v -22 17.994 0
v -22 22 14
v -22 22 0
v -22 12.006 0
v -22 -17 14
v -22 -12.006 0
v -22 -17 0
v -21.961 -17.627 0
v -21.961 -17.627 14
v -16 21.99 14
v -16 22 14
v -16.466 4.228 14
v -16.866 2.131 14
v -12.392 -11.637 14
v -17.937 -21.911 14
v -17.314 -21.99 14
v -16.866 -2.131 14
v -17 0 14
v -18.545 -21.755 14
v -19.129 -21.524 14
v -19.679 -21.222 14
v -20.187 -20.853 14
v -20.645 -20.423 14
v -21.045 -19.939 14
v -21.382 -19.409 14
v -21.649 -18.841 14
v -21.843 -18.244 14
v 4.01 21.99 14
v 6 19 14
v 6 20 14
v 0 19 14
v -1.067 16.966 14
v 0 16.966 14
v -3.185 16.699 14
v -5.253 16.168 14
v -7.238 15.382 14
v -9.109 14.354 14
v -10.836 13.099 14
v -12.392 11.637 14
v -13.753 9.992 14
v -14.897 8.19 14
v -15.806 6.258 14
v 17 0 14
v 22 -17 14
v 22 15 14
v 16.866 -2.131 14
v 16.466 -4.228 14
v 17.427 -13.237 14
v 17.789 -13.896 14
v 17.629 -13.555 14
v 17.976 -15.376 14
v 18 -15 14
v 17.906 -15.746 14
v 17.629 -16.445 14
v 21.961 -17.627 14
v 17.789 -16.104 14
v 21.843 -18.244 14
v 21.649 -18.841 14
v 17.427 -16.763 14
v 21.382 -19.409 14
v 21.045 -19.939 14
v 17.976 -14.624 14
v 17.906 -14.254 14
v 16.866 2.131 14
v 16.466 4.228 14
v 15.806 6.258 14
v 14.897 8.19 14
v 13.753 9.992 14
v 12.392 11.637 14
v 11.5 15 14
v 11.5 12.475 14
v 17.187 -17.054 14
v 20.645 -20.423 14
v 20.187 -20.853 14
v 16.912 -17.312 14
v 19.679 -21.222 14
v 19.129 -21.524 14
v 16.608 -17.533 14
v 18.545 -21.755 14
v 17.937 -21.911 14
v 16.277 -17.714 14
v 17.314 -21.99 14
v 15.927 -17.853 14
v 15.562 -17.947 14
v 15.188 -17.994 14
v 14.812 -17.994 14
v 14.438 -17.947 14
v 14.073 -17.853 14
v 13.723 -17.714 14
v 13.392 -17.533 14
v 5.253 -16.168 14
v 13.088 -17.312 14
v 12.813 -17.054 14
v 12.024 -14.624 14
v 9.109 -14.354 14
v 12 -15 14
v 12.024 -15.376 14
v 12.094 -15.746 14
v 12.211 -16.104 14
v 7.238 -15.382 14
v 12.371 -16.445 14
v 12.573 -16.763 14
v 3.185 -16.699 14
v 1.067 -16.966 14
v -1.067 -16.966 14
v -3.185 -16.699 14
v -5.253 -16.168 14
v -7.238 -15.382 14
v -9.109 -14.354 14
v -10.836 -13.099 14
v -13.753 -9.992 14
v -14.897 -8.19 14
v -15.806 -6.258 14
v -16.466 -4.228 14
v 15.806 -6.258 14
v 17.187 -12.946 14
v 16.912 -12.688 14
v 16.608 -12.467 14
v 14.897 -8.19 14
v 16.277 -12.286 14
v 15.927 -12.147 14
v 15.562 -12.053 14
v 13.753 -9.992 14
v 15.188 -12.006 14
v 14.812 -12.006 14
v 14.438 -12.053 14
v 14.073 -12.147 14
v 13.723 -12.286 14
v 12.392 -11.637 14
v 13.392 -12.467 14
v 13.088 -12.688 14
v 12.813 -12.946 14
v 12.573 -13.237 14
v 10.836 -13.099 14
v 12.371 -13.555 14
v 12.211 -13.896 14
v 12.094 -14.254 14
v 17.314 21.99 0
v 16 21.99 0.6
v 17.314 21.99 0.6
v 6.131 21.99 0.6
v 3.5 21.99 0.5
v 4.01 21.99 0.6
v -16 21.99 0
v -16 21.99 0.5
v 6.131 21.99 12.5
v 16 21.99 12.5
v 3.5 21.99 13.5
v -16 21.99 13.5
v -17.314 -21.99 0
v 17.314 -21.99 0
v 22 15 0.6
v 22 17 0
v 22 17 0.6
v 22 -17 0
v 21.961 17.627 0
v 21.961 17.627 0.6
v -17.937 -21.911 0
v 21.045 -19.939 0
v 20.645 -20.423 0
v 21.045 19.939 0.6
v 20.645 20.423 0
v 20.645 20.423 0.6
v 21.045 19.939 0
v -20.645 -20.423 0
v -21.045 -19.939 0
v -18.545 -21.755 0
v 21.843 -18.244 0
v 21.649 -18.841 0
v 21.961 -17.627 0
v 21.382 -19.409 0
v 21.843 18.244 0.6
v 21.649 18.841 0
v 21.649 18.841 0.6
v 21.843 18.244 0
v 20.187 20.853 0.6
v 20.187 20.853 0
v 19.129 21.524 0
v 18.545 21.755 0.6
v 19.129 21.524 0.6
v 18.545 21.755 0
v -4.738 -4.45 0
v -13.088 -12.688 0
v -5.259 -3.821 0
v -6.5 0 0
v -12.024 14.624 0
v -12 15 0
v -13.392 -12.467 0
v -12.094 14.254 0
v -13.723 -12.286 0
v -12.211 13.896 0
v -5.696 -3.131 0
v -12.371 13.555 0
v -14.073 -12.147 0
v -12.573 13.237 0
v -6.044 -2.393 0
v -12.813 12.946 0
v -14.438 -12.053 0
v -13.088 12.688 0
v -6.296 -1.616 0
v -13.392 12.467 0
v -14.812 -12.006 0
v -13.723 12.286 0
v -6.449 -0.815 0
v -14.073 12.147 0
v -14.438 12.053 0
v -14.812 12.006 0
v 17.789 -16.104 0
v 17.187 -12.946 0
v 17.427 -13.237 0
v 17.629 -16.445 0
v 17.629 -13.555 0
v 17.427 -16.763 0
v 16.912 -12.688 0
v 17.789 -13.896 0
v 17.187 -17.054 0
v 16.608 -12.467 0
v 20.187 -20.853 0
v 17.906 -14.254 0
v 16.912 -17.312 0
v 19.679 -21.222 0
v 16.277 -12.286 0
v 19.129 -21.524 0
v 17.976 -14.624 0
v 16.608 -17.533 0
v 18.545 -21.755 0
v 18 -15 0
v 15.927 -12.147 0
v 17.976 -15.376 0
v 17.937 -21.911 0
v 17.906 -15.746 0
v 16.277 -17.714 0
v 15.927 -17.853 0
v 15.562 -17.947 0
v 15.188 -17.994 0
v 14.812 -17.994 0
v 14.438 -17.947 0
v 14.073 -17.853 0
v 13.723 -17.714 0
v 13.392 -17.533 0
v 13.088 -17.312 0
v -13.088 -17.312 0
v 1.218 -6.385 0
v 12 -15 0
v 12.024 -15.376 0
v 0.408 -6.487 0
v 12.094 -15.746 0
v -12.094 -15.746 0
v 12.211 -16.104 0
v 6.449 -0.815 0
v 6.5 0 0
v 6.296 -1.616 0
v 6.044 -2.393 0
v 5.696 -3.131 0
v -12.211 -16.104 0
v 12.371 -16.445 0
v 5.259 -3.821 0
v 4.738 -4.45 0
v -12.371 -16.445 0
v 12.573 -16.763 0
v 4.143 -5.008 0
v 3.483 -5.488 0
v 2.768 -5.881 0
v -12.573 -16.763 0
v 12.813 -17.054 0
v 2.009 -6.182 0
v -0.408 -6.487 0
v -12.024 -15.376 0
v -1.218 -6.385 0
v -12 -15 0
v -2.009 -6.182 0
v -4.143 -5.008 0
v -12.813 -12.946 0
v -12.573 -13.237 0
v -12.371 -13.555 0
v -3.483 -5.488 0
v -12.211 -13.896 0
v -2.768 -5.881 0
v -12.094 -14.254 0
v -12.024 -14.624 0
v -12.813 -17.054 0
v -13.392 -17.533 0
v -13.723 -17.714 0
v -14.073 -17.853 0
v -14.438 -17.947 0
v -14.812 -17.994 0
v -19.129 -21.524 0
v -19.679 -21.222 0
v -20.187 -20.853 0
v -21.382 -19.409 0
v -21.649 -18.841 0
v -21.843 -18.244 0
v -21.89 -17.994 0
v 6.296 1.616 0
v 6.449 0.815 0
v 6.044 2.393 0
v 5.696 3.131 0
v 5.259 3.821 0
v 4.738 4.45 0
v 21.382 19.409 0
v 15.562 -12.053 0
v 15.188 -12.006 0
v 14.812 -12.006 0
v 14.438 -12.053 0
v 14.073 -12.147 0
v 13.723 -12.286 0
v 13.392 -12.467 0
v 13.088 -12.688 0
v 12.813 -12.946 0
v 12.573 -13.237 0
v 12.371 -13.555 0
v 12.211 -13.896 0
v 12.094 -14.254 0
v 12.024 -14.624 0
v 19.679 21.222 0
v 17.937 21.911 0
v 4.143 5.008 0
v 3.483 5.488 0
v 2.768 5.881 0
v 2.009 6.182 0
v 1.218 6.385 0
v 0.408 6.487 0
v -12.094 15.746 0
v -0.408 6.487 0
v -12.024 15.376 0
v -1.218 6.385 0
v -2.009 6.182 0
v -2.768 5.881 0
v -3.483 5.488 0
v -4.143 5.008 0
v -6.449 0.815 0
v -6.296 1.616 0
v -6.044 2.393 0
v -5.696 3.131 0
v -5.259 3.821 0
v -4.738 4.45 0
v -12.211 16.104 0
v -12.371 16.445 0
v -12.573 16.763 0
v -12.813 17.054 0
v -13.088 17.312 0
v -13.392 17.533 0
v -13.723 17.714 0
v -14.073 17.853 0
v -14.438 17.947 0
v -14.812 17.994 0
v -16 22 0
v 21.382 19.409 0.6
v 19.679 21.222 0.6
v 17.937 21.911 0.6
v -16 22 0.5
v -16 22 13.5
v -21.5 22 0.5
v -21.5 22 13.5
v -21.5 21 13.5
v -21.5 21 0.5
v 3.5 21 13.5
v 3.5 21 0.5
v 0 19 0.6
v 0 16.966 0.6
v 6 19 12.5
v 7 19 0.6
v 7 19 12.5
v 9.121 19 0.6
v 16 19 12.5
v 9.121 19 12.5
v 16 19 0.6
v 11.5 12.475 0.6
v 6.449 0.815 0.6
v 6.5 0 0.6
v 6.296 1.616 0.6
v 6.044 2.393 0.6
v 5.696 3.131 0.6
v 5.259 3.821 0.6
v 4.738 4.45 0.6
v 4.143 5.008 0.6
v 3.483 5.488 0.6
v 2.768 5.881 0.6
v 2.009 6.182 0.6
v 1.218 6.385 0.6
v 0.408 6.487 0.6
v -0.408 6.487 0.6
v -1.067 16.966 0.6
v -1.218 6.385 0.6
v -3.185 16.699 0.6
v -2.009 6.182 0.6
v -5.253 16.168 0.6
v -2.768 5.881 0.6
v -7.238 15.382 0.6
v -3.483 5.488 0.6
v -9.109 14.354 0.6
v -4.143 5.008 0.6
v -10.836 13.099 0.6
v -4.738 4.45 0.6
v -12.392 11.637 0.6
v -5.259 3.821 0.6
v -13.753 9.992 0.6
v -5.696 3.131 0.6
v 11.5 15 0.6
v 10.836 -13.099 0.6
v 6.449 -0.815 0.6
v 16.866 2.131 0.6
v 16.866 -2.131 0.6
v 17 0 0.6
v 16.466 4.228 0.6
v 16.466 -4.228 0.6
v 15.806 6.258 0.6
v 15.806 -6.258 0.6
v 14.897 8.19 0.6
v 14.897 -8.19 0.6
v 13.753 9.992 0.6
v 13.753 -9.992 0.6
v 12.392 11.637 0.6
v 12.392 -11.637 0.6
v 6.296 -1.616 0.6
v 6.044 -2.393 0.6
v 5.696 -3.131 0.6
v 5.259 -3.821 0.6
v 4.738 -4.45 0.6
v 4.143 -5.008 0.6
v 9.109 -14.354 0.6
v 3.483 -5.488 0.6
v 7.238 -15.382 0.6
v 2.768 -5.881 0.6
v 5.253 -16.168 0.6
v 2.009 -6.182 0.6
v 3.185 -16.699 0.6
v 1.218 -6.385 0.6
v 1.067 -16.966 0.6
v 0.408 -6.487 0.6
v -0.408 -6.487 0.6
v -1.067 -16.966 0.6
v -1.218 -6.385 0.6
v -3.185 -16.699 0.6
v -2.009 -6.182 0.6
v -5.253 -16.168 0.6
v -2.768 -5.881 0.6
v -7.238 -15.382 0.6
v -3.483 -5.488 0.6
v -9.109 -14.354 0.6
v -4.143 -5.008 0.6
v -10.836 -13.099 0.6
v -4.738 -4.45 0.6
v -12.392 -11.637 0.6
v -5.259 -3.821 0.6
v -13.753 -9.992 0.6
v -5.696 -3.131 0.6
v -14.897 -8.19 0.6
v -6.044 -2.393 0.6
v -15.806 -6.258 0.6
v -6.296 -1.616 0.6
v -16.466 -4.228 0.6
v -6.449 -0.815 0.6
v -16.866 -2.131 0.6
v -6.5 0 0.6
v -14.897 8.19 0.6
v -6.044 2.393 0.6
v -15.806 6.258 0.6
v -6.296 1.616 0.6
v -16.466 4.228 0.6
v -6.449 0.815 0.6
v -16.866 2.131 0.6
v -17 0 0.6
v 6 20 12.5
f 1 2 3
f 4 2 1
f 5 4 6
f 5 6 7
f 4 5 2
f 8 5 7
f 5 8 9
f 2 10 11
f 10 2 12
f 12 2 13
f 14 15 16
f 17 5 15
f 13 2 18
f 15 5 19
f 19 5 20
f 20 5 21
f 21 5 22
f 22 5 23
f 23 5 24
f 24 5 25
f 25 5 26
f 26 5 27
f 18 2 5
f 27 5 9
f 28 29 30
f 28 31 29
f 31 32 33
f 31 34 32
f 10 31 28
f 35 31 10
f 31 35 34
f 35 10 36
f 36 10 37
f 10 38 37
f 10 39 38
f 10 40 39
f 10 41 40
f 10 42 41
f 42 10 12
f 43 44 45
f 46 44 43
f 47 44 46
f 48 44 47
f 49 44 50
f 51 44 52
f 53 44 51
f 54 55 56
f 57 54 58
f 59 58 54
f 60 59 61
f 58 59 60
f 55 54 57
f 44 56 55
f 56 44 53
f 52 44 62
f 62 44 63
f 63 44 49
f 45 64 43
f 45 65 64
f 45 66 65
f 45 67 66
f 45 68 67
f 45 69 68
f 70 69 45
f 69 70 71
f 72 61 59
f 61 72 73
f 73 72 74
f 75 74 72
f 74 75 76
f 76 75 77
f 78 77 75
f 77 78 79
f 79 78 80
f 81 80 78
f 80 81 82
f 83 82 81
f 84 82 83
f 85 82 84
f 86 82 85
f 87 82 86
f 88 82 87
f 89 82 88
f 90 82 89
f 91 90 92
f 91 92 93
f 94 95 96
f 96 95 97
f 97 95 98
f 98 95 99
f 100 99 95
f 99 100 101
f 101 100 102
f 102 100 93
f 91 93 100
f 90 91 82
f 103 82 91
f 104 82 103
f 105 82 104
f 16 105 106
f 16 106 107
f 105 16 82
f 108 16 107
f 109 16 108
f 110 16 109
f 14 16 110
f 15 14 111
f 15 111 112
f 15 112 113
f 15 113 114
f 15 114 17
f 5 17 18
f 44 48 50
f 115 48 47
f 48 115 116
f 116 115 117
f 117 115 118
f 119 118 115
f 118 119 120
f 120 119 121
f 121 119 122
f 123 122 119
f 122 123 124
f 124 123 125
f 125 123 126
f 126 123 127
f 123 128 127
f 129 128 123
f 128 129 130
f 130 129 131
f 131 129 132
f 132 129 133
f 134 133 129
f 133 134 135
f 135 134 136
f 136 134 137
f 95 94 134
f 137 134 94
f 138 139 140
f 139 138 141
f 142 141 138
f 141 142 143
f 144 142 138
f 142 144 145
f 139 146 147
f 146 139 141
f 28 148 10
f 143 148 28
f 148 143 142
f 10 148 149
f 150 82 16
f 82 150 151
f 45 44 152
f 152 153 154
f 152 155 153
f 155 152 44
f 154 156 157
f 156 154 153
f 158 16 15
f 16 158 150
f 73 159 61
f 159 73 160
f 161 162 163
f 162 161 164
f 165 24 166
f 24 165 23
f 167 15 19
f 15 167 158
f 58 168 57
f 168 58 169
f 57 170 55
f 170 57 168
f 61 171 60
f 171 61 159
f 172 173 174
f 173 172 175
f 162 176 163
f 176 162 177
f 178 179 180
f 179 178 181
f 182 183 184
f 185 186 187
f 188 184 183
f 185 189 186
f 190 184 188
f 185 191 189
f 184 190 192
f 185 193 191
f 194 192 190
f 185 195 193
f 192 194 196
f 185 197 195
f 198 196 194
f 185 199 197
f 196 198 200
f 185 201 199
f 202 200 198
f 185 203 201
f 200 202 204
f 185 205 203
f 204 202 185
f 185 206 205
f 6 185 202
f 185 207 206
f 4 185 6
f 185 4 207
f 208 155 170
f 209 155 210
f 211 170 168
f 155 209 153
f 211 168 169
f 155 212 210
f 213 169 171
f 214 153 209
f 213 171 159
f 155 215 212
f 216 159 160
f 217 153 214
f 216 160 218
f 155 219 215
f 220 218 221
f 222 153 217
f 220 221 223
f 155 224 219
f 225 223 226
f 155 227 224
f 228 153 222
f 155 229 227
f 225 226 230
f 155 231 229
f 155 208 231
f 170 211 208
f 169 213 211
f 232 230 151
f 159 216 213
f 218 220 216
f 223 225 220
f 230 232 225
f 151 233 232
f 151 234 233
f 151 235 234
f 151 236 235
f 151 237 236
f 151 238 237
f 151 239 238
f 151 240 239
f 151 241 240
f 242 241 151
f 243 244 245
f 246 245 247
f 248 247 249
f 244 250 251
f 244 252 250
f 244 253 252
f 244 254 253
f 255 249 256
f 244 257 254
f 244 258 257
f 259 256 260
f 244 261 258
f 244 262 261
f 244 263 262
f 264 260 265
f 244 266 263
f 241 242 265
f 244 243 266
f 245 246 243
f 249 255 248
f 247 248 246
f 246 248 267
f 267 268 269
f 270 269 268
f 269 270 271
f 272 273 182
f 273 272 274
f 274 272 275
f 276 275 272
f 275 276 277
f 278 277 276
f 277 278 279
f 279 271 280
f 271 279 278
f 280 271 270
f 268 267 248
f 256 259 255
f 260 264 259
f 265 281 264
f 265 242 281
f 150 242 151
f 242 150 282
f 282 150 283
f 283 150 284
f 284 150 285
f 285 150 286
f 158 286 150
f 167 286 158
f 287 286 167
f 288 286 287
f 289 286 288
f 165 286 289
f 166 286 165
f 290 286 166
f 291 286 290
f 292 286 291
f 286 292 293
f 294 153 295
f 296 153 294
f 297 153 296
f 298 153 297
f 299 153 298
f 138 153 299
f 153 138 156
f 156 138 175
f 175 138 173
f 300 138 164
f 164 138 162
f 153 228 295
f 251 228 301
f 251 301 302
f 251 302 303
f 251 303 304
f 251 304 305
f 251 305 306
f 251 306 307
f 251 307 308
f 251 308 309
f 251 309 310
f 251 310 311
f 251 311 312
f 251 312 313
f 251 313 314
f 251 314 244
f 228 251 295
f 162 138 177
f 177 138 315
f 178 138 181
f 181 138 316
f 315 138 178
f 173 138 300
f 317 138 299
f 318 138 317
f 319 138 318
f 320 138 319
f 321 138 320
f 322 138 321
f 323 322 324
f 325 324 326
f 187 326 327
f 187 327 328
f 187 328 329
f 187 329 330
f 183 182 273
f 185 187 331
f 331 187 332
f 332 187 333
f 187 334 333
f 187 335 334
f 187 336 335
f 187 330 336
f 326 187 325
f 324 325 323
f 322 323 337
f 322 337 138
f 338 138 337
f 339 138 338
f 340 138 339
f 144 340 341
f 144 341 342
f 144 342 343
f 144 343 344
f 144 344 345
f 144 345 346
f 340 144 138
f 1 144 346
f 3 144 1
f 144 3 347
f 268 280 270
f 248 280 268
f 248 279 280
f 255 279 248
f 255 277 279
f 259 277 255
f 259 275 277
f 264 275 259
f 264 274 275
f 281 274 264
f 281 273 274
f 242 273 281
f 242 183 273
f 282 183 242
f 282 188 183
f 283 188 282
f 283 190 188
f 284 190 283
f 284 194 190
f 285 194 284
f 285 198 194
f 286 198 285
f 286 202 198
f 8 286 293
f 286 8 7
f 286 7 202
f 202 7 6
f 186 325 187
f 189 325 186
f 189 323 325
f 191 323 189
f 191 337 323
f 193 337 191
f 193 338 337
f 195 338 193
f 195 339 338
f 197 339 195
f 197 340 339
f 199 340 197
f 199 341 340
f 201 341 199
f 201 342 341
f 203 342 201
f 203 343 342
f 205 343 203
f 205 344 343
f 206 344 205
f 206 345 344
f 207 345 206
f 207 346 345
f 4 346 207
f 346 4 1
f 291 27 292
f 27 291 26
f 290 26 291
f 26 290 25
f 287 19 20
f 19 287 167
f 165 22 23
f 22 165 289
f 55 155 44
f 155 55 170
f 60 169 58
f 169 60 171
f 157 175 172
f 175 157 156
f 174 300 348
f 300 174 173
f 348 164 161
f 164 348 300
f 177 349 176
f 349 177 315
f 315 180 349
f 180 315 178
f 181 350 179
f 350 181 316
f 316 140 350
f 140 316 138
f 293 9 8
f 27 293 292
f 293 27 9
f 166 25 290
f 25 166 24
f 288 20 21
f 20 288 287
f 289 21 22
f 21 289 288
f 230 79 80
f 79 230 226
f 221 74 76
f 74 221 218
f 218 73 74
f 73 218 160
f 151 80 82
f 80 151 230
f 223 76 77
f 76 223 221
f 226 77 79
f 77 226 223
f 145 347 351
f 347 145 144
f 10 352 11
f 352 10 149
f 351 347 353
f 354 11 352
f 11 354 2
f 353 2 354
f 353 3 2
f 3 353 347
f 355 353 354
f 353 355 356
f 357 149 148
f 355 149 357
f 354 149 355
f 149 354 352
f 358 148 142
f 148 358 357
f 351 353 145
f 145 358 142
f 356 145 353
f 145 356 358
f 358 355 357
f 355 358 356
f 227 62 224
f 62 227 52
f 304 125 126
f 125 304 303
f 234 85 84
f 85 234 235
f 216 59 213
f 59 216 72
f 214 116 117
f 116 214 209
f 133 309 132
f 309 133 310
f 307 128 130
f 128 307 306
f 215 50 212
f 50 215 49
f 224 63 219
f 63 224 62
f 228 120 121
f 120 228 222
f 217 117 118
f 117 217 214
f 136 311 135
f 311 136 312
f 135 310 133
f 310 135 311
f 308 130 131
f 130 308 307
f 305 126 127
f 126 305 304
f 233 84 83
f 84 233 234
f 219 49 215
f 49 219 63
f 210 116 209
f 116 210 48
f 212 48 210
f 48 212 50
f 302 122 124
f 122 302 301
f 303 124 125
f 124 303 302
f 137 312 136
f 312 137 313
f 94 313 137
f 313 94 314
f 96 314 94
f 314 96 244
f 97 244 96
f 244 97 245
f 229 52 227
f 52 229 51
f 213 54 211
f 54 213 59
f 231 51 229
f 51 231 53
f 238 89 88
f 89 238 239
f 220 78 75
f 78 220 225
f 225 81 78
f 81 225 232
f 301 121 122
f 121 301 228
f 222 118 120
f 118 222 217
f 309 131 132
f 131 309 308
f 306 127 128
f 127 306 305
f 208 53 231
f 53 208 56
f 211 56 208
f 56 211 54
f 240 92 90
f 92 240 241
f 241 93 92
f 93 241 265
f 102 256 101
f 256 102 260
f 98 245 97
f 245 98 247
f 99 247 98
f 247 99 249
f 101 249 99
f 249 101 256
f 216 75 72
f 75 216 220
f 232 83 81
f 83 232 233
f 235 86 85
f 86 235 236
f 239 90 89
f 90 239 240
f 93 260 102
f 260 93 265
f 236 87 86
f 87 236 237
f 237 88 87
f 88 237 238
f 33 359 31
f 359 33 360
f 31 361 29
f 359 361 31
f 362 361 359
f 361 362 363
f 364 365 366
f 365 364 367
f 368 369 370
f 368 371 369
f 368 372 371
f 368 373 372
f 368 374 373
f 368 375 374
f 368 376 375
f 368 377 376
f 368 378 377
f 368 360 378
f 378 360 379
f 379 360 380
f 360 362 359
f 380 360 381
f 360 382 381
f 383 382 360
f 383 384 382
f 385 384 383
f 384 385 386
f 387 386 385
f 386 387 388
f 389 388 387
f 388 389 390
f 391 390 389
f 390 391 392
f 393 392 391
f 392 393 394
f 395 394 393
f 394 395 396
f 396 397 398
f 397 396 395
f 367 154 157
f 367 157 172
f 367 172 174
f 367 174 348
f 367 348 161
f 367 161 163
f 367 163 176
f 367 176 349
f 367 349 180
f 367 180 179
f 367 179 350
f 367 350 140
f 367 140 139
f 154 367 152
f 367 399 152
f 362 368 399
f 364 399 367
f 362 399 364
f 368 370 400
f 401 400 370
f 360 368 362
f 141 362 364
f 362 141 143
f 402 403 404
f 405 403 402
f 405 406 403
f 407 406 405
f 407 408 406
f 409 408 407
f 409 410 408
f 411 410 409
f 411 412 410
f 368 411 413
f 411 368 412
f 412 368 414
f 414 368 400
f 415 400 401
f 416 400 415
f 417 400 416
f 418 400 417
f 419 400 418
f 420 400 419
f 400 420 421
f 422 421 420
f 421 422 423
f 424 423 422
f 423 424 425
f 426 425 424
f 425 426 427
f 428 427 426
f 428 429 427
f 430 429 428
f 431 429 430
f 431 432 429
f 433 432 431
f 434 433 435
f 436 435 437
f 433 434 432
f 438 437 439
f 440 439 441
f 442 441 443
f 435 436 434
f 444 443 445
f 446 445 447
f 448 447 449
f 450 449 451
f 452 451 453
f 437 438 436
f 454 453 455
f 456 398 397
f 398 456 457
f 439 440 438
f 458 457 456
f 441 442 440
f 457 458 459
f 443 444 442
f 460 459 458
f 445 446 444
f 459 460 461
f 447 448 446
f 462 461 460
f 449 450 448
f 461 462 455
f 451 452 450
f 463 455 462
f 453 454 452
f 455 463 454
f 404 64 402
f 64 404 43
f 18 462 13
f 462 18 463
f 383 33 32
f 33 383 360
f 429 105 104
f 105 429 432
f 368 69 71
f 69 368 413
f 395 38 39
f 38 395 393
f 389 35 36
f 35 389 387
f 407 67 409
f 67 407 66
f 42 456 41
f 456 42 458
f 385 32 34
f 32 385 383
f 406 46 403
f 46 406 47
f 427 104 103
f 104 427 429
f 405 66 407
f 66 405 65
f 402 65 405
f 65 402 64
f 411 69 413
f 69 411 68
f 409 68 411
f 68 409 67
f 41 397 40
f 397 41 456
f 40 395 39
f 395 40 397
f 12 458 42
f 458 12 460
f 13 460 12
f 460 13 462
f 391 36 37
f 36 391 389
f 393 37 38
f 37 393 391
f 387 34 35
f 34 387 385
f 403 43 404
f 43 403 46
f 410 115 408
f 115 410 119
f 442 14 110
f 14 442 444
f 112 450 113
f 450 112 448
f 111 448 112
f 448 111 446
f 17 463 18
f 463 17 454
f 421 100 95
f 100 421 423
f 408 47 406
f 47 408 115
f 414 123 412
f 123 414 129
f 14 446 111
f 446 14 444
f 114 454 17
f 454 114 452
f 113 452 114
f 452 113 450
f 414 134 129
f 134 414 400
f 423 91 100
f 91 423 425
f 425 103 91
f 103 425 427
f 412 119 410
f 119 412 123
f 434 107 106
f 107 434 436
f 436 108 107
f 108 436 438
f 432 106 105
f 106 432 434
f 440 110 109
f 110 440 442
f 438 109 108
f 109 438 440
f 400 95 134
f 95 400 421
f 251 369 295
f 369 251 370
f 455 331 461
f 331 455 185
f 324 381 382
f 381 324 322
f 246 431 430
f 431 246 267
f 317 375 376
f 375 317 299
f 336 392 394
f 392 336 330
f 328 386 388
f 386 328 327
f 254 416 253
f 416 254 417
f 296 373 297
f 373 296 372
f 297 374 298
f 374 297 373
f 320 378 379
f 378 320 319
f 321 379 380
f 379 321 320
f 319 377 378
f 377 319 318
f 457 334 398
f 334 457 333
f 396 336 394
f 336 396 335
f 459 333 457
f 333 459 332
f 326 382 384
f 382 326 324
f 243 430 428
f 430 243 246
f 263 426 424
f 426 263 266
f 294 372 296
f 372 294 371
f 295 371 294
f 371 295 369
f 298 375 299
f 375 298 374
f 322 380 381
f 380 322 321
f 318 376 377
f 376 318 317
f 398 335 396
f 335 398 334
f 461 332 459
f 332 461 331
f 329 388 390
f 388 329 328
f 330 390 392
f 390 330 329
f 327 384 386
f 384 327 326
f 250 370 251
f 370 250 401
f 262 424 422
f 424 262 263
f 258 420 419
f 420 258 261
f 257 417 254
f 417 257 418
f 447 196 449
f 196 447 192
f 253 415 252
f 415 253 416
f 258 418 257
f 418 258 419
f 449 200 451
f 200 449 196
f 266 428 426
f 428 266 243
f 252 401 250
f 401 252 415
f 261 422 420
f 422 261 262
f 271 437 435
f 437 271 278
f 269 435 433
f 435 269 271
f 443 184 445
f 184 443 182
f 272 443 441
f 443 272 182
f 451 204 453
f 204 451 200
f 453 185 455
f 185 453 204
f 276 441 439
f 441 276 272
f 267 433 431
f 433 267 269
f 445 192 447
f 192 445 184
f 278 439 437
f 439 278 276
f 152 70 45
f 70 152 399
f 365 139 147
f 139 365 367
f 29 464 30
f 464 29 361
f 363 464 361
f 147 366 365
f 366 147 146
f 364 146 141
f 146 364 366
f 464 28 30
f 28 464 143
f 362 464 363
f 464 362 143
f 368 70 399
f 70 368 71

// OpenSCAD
$fn = 50;


difference() {
	union() {
		hull() {
			translate(v = [-17.0000000000, 17.0000000000, 0]) {
				cylinder(h = 14, r = 5);
			}
			translate(v = [17.0000000000, 17.0000000000, 0]) {
				cylinder(h = 14, r = 5);
			}
			translate(v = [-17.0000000000, -17.0000000000, 0]) {
				cylinder(h = 14, r = 5);
			}
			translate(v = [17.0000000000, -17.0000000000, 0]) {
				cylinder(h = 14, r = 5);
			}
		}
		translate(v = [-22.0000000000, 16.0000000000, 0]) {
			cube(size = [6, 6, 14]);
		}
	}
	union() {
		translate(v = [-22.5000000000, -15.0000000000, -250.0000000000]) {
			rotate(a = [0, 0, 0]) {
				difference() {
					union() {
						hull() {
							translate(v = [7.5000000000, 0, 0]) {
								cylinder(h = 250, r = 3.0000000000, r1 = 3.0000000000, r2 = 3.0000000000);
							}
							translate(v = [-7.5000000000, 0, 0]) {
								cylinder(h = 250, r = 3.0000000000, r1 = 3.0000000000, r2 = 3.0000000000);
							}
						}
					}
					union();
				}
			}
		}
		translate(v = [-22.5000000000, 15.0000000000, -250.0000000000]) {
			rotate(a = [0, 0, 0]) {
				difference() {
					union() {
						hull() {
							translate(v = [7.5000000000, 0, 0]) {
								cylinder(h = 250, r = 3.0000000000, r1 = 3.0000000000, r2 = 3.0000000000);
							}
							translate(v = [-7.5000000000, 0, 0]) {
								cylinder(h = 250, r = 3.0000000000, r1 = 3.0000000000, r2 = 3.0000000000);
							}
						}
					}
					union();
				}
			}
		}
		translate(v = [-21.5000000000, 21.0000000000, 0.5000000000]) {
			cube(size = [25, 1, 13.0000000000]);
		}
		translate(v = [15.0000000000, -15.0000000000, -50.0000000000]) {
			cylinder(h = 100, r = 3.0000000000);
		}
		translate(v = [0.0000000000, 11.0000000000, 0.6000000000]) {
			cube(size = [11, 8, 16.4000000000]);
		}
		translate(v = [0, 0, 0.6000000000]) {
			cylinder(h = 16.4000000000, r = 17.0000000000);
		}
		translate(v = [0, 0, -7.0000000000]) {
			cylinder(h = 14, r = 6.5000000000);
		}
		translate(v = [0.0000000000, 15.0000000000, 0.6000000000]) {
			cube(size = [22.0000000000, 4, 16.4000000000]);
		}
		translate(v = [16.0000000000, 15.0000000000, 0.6000000000]) {
			cube(size = [6, 7, 16.4000000000]);
		}
		translate(v = [6.0000000000, 15.0000000000, 12.5000000000]) {
			cube(size = [16, 7, 1.5000000000]);
		}
		translate(v = [3.2500000000, 22.7500000000, 0.6000000000]) {
			rotate(a = [0, 0, -45]) {
				cube(size = [7.5000000000, 1.5000000000, 16.4000000000]);
			}
		}
		translate(v = [2.5000000000, 10.0000000000, 0.6000000000]) {
			cube(size = [9.0000000000, 5, 13.4000000000]);
		}
	}
}
